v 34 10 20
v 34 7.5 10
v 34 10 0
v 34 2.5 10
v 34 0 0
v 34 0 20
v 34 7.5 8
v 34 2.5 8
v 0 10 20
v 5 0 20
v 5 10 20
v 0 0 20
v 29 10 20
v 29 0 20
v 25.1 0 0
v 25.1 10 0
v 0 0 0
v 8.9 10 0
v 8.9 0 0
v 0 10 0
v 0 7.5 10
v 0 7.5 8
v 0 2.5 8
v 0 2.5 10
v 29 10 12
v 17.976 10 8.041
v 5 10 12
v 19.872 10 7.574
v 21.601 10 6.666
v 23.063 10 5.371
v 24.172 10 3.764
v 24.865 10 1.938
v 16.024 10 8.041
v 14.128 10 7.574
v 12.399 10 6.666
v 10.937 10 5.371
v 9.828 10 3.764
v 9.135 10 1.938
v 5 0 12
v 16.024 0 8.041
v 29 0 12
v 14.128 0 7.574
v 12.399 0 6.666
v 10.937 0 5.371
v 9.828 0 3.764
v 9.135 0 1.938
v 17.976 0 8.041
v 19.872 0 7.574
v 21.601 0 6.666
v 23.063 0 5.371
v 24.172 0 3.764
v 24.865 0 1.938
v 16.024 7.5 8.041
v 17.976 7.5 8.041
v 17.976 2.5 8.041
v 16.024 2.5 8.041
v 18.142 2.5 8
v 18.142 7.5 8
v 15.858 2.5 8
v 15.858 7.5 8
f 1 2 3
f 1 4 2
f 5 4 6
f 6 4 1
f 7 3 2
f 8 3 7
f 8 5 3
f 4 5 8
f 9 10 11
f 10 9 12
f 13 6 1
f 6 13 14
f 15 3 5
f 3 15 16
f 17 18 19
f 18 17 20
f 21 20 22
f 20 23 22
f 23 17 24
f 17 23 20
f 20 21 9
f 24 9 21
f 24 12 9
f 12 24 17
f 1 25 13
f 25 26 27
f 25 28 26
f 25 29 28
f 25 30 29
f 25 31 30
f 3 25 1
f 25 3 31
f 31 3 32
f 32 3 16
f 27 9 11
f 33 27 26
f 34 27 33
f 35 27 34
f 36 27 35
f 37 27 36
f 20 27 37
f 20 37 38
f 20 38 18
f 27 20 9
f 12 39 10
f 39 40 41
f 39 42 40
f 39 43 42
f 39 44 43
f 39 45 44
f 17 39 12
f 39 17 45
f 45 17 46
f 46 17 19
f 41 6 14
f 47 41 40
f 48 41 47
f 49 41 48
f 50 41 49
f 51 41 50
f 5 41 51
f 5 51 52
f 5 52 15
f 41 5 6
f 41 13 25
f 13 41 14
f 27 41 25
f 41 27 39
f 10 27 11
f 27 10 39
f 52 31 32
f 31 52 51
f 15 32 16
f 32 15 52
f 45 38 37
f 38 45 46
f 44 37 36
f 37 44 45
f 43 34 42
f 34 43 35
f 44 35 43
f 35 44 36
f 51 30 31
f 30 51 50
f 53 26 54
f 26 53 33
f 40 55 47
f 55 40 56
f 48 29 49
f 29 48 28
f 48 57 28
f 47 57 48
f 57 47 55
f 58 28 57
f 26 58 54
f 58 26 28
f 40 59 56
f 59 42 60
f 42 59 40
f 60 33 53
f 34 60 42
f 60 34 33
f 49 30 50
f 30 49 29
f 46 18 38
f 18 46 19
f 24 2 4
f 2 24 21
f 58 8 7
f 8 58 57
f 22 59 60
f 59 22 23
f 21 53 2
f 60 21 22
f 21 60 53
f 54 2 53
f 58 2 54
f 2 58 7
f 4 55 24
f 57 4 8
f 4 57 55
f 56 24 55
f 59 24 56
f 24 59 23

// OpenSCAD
difference()
{
    cube([34,10,20]);
    translate([5,0,12])cube([24,10,8]);  
    translate([17,10,0])rotate([90,0,0])cylinder(d=16.2 ,h=20);
    #translate([0,2.5,8])cube([34,5,2]);  
}
